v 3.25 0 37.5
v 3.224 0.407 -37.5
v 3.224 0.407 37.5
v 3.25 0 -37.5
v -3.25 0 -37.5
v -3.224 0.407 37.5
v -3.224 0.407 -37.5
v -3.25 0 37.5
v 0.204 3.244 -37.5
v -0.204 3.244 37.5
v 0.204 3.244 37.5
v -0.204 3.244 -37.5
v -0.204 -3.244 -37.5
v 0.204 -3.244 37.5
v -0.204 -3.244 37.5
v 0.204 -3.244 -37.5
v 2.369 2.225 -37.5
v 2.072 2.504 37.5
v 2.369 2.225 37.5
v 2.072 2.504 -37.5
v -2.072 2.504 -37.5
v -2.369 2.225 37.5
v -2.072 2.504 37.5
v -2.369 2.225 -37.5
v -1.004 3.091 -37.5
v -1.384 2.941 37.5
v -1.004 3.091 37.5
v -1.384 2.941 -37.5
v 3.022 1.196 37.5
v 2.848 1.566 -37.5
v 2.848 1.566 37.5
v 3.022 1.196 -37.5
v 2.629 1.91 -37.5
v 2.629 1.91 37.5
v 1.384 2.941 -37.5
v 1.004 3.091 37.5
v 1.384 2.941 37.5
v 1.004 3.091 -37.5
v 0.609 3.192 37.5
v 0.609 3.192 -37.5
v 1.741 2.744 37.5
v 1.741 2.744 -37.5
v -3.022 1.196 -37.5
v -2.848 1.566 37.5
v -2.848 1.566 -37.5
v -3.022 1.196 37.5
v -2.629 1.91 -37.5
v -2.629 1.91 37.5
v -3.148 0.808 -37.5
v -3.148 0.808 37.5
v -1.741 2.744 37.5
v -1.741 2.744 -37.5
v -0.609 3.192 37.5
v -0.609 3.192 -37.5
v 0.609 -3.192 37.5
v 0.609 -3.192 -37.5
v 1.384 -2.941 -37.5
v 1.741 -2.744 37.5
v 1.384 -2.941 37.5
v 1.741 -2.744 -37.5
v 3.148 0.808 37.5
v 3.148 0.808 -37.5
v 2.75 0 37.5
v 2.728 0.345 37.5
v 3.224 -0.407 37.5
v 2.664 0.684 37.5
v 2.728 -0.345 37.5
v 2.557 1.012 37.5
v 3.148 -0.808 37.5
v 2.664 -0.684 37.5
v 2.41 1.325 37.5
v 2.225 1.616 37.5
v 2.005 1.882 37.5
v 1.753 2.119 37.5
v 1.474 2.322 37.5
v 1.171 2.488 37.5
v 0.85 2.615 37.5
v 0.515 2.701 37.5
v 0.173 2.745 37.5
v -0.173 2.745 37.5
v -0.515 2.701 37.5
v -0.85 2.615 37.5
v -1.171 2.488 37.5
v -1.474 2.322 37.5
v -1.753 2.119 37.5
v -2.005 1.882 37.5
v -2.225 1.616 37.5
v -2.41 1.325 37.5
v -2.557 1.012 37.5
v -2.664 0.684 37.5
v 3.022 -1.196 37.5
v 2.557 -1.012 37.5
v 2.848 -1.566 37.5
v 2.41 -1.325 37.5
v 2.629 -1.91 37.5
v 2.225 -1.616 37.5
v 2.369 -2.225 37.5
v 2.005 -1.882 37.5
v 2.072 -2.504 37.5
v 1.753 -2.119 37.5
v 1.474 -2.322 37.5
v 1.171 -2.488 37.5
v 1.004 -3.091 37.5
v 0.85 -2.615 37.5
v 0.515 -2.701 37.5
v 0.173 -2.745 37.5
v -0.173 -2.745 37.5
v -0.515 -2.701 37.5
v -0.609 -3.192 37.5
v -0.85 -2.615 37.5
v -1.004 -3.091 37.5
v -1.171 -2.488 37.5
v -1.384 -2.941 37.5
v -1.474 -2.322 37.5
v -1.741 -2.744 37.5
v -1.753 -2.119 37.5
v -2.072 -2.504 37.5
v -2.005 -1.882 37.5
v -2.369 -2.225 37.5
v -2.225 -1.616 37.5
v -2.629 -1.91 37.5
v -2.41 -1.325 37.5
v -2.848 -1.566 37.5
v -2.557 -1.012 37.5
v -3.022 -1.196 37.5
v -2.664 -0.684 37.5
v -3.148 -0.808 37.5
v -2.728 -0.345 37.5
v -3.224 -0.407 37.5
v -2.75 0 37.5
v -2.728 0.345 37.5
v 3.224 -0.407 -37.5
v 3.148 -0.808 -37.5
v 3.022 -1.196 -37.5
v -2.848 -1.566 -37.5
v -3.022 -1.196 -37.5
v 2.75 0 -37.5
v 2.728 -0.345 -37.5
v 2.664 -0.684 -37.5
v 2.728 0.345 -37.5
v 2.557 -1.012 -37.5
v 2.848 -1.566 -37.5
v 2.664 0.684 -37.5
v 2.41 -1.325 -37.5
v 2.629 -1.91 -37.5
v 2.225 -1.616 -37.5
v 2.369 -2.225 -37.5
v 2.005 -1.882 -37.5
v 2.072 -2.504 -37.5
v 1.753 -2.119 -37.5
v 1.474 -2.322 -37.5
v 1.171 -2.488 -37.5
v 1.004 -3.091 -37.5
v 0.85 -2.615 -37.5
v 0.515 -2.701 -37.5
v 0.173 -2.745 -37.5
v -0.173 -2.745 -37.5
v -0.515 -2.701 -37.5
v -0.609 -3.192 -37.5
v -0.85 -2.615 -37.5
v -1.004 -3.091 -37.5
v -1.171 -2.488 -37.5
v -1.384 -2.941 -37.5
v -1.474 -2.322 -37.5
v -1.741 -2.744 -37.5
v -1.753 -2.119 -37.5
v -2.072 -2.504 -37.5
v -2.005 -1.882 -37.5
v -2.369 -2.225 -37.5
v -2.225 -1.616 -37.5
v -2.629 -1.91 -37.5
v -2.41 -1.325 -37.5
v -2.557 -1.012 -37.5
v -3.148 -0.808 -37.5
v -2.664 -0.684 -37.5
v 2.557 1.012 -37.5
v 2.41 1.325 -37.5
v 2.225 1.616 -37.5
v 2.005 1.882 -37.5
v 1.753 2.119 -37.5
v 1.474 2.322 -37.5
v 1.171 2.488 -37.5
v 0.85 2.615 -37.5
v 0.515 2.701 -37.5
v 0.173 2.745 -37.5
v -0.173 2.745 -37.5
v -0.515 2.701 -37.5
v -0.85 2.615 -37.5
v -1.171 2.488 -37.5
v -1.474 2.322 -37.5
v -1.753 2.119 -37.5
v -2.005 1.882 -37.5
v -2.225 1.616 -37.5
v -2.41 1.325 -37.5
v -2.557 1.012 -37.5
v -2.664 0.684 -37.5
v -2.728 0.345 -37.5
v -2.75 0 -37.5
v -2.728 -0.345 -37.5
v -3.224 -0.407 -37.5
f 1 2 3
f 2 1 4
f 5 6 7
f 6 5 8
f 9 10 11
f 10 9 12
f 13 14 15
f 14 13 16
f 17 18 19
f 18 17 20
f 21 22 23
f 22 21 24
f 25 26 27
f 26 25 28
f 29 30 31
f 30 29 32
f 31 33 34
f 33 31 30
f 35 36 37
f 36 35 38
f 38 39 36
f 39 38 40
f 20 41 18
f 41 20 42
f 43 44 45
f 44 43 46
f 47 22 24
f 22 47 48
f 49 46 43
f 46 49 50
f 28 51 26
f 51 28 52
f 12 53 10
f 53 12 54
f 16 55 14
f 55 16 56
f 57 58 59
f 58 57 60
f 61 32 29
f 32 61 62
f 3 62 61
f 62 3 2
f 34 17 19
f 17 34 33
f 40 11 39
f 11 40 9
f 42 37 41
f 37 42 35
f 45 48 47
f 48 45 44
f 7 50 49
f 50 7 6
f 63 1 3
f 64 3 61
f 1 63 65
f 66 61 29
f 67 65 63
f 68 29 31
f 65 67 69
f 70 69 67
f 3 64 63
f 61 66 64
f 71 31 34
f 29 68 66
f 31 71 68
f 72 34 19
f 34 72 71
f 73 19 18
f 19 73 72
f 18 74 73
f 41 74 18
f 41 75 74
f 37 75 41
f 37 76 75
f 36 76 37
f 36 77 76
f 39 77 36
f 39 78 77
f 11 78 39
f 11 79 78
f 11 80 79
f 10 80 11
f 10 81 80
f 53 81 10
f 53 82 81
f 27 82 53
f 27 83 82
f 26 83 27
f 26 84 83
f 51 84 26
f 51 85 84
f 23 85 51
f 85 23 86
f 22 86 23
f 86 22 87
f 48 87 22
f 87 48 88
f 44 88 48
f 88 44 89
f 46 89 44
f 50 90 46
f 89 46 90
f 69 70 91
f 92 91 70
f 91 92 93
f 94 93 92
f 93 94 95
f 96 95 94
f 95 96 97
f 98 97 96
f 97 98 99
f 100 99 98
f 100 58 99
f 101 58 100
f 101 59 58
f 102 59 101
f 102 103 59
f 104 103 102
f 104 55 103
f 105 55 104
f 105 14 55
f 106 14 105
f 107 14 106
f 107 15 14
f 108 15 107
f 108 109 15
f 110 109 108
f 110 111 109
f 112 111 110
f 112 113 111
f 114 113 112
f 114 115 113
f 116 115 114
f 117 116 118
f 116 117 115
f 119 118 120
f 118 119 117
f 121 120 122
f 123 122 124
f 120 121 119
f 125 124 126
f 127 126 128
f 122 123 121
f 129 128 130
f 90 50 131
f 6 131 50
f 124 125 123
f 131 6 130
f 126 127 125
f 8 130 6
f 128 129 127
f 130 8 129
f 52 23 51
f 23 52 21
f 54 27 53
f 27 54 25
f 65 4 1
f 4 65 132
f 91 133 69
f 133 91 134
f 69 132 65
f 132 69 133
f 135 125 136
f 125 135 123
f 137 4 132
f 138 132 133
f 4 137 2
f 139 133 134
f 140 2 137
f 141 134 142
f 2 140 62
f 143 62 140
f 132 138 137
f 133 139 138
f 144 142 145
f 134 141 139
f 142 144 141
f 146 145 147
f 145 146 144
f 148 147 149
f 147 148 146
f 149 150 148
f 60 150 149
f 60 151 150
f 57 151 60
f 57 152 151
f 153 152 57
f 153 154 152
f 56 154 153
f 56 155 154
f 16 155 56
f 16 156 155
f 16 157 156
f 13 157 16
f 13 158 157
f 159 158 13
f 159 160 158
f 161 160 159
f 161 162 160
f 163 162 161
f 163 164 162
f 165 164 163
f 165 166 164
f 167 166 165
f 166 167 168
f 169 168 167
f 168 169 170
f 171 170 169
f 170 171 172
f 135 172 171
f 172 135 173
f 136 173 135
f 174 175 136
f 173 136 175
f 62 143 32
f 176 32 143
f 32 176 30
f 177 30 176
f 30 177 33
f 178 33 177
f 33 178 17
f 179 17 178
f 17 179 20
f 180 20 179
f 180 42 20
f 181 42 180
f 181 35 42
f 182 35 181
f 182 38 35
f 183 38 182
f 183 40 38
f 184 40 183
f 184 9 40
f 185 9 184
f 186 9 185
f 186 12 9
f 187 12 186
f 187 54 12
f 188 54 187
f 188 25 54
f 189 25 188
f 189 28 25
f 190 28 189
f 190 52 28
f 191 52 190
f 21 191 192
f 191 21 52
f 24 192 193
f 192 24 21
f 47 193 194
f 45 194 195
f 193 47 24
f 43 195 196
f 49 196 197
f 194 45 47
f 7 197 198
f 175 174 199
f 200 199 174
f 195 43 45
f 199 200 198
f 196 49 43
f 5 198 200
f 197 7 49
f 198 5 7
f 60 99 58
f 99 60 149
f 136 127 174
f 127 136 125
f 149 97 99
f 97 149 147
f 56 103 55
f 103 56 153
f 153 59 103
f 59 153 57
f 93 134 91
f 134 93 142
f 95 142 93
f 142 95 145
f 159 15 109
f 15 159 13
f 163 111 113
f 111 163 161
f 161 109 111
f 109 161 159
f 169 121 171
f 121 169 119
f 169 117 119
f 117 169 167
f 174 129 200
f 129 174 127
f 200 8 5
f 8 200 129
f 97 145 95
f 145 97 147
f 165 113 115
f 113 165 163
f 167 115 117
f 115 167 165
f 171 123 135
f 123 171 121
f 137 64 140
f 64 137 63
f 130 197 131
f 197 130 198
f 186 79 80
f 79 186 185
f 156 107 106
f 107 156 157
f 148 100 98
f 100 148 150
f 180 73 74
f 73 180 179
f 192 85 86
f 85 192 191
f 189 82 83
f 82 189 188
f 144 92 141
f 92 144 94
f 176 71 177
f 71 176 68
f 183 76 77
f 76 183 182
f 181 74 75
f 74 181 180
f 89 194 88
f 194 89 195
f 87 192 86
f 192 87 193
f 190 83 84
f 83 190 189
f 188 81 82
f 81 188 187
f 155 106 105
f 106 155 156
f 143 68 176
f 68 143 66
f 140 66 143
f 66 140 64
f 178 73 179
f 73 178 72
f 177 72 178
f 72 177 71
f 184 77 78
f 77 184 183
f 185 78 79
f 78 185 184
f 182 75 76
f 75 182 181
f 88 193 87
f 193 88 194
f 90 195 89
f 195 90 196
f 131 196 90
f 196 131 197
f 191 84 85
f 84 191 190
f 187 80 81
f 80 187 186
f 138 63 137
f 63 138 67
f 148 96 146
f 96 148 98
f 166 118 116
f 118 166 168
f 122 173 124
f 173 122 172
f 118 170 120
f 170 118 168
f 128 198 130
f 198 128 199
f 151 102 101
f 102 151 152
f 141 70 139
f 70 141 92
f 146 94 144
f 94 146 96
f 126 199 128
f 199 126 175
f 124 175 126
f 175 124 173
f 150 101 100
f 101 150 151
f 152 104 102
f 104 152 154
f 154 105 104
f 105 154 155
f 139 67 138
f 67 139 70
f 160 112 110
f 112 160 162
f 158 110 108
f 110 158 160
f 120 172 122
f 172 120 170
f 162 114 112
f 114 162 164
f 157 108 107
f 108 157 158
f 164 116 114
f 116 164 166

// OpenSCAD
$fn = 50;


difference() {
	union() {
		translate(v = [0, 0, -37.5000000000]) {
			cylinder(h = 75, r = 3.2500000000);
		}
	}
	union() {
		translate(v = [0, 0, -100.0000000000]) {
			cylinder(h = 200, r = 2.7500000000);
		}
	}
}
